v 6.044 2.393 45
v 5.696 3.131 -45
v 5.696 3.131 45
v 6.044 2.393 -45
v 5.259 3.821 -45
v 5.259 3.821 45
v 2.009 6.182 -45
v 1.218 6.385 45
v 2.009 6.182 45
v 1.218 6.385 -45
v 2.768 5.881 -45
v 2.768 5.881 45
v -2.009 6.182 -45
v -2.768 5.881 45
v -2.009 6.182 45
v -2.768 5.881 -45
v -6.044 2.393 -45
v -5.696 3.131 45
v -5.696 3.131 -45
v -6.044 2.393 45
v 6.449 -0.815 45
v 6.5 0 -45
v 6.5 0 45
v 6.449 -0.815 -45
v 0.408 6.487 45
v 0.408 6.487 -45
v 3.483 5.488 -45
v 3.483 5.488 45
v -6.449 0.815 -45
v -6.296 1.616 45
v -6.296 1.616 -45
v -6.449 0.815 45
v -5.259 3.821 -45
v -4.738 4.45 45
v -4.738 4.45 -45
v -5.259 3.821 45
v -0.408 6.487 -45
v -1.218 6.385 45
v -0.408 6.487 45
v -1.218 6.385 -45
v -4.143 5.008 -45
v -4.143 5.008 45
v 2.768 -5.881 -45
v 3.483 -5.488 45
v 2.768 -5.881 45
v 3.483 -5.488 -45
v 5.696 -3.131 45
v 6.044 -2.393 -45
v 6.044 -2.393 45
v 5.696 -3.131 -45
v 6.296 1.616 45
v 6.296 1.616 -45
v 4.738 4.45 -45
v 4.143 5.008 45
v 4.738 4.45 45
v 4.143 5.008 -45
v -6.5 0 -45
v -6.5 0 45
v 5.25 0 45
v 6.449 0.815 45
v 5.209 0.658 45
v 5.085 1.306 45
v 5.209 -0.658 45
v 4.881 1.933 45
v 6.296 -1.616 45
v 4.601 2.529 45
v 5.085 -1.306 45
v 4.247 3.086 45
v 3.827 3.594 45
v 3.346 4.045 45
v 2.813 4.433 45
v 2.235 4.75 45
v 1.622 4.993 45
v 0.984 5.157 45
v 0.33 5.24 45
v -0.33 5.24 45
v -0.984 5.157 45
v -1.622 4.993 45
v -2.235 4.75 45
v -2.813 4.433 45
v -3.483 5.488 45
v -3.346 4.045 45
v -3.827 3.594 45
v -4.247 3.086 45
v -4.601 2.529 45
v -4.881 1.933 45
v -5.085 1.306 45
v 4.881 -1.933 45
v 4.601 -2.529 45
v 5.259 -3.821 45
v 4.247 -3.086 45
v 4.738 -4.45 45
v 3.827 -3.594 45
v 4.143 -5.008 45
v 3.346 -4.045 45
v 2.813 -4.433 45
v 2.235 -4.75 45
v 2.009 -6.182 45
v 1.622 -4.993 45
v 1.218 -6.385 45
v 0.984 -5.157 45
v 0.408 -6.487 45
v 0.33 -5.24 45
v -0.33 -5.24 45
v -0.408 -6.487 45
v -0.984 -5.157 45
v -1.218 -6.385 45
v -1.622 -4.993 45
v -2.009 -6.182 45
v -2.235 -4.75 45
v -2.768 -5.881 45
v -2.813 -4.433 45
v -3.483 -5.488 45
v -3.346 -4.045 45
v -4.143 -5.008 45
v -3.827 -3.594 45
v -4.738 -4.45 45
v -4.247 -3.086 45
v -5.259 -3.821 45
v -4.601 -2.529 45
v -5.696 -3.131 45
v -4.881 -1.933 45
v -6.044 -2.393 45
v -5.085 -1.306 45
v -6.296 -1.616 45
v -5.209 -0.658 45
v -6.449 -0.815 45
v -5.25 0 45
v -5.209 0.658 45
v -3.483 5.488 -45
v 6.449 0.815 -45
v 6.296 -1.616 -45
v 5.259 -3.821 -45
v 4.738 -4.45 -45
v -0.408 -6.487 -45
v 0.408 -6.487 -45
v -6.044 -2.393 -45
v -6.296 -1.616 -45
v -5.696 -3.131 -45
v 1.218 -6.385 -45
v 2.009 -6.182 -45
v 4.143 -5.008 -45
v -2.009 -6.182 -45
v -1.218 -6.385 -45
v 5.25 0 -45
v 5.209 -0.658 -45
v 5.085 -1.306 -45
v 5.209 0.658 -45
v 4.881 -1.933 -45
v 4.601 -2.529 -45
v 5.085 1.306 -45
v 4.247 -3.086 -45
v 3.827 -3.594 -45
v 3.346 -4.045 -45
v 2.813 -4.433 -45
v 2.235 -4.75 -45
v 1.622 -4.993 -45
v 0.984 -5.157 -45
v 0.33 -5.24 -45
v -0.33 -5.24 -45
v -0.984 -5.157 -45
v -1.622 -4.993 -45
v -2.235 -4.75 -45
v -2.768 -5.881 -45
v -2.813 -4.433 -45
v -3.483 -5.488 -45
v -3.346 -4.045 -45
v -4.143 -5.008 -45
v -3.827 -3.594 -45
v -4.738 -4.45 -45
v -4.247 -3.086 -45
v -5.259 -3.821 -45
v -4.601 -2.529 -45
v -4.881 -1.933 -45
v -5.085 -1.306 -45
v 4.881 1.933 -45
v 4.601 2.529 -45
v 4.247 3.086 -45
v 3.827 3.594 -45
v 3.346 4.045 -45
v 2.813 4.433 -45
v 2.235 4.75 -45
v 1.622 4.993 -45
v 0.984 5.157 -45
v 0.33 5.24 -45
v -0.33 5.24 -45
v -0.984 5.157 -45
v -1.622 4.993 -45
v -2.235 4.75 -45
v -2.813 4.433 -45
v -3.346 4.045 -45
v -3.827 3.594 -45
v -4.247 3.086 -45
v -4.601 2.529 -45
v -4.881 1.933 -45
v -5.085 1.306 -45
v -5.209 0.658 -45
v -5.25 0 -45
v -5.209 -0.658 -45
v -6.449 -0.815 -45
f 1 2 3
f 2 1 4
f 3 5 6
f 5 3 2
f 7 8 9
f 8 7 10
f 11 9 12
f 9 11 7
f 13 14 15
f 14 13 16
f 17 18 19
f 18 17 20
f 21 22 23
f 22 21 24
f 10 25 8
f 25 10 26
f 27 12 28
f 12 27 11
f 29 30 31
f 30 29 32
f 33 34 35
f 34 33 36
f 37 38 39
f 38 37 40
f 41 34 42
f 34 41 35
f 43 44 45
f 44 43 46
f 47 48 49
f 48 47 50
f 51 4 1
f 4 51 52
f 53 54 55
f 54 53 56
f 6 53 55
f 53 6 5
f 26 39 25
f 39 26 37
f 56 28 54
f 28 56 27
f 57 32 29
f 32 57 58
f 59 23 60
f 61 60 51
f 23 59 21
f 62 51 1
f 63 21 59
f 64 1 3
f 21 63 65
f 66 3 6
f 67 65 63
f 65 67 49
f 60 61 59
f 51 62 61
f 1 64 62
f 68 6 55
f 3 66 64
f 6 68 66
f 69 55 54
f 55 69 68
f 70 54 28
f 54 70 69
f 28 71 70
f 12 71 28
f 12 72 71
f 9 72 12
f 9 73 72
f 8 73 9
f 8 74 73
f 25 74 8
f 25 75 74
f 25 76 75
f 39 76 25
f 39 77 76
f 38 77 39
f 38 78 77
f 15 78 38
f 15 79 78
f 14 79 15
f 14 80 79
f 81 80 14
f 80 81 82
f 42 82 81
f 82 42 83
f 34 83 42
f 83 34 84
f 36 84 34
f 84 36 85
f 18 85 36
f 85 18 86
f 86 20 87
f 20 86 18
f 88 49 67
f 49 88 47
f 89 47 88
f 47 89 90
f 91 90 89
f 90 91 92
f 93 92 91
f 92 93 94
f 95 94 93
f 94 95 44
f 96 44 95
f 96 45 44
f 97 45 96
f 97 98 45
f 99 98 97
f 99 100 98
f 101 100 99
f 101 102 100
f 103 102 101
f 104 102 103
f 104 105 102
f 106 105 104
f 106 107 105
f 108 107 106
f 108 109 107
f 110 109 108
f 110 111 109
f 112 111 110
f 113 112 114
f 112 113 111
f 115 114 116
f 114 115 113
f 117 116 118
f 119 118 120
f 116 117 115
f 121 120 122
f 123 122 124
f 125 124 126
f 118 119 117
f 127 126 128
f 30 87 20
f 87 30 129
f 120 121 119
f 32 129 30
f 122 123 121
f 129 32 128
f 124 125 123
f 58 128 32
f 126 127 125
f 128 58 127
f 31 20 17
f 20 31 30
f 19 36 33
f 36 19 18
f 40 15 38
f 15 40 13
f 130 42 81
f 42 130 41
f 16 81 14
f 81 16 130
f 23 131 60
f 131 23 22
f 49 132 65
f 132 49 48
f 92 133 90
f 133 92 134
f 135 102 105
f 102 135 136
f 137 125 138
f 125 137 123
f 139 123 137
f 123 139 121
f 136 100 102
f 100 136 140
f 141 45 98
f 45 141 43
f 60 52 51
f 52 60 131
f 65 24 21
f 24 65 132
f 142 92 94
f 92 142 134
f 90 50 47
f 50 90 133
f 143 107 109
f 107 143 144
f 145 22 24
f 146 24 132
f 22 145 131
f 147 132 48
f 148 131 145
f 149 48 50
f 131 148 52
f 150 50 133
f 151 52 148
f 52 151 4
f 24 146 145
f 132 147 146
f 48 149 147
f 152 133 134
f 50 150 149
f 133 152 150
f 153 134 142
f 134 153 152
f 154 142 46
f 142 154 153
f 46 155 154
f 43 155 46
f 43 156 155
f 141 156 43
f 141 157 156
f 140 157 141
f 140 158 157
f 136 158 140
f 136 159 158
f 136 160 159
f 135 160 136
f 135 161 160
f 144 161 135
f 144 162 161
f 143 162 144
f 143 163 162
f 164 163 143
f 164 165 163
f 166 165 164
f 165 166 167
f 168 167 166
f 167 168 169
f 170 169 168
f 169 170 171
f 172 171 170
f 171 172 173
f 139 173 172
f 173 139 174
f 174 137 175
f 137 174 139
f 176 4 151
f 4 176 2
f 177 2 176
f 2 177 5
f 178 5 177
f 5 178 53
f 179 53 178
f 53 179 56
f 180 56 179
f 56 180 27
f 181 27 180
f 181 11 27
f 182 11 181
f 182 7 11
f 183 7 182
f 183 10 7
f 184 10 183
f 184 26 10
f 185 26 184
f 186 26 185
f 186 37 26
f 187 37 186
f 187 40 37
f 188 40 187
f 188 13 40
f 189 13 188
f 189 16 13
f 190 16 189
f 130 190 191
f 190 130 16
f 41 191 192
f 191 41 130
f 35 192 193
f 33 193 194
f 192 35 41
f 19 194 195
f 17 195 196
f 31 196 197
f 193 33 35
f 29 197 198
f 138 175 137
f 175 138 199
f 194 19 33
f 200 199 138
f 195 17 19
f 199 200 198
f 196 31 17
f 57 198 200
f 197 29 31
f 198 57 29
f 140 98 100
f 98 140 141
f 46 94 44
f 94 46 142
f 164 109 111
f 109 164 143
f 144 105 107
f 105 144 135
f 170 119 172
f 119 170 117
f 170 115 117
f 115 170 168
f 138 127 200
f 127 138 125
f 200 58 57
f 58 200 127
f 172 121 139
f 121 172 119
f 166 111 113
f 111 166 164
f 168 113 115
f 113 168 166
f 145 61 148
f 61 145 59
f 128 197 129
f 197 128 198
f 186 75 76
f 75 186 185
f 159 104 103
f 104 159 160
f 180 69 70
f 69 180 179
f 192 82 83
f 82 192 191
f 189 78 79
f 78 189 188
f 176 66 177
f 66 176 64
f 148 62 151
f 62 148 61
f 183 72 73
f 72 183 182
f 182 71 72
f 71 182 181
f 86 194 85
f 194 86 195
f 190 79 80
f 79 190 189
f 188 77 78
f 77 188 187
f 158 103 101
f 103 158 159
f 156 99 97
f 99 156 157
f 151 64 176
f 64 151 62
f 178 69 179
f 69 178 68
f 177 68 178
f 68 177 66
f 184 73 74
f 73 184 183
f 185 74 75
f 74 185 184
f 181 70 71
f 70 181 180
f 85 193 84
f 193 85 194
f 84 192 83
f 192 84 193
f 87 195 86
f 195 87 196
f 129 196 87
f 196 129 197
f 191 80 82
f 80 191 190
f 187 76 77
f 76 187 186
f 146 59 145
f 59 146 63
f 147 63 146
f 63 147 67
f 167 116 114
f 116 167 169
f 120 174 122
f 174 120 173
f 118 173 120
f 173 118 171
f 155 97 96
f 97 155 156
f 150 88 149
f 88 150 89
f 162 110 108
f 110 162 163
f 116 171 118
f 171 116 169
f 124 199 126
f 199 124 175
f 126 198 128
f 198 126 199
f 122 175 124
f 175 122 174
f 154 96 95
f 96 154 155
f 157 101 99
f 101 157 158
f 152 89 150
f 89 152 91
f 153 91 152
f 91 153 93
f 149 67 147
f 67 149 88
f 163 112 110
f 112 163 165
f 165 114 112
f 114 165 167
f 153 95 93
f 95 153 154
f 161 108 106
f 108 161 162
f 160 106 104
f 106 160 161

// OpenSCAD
$fn = 50;


difference() {
	union() {
		translate(v = [0, 0, -45.0000000000]) {
			cylinder(h = 90, r = 6.5000000000);
		}
	}
	union() {
		translate(v = [0, 0, -100.0000000000]) {
			cylinder(h = 200, r = 5.2500000000);
		}
	}
}
